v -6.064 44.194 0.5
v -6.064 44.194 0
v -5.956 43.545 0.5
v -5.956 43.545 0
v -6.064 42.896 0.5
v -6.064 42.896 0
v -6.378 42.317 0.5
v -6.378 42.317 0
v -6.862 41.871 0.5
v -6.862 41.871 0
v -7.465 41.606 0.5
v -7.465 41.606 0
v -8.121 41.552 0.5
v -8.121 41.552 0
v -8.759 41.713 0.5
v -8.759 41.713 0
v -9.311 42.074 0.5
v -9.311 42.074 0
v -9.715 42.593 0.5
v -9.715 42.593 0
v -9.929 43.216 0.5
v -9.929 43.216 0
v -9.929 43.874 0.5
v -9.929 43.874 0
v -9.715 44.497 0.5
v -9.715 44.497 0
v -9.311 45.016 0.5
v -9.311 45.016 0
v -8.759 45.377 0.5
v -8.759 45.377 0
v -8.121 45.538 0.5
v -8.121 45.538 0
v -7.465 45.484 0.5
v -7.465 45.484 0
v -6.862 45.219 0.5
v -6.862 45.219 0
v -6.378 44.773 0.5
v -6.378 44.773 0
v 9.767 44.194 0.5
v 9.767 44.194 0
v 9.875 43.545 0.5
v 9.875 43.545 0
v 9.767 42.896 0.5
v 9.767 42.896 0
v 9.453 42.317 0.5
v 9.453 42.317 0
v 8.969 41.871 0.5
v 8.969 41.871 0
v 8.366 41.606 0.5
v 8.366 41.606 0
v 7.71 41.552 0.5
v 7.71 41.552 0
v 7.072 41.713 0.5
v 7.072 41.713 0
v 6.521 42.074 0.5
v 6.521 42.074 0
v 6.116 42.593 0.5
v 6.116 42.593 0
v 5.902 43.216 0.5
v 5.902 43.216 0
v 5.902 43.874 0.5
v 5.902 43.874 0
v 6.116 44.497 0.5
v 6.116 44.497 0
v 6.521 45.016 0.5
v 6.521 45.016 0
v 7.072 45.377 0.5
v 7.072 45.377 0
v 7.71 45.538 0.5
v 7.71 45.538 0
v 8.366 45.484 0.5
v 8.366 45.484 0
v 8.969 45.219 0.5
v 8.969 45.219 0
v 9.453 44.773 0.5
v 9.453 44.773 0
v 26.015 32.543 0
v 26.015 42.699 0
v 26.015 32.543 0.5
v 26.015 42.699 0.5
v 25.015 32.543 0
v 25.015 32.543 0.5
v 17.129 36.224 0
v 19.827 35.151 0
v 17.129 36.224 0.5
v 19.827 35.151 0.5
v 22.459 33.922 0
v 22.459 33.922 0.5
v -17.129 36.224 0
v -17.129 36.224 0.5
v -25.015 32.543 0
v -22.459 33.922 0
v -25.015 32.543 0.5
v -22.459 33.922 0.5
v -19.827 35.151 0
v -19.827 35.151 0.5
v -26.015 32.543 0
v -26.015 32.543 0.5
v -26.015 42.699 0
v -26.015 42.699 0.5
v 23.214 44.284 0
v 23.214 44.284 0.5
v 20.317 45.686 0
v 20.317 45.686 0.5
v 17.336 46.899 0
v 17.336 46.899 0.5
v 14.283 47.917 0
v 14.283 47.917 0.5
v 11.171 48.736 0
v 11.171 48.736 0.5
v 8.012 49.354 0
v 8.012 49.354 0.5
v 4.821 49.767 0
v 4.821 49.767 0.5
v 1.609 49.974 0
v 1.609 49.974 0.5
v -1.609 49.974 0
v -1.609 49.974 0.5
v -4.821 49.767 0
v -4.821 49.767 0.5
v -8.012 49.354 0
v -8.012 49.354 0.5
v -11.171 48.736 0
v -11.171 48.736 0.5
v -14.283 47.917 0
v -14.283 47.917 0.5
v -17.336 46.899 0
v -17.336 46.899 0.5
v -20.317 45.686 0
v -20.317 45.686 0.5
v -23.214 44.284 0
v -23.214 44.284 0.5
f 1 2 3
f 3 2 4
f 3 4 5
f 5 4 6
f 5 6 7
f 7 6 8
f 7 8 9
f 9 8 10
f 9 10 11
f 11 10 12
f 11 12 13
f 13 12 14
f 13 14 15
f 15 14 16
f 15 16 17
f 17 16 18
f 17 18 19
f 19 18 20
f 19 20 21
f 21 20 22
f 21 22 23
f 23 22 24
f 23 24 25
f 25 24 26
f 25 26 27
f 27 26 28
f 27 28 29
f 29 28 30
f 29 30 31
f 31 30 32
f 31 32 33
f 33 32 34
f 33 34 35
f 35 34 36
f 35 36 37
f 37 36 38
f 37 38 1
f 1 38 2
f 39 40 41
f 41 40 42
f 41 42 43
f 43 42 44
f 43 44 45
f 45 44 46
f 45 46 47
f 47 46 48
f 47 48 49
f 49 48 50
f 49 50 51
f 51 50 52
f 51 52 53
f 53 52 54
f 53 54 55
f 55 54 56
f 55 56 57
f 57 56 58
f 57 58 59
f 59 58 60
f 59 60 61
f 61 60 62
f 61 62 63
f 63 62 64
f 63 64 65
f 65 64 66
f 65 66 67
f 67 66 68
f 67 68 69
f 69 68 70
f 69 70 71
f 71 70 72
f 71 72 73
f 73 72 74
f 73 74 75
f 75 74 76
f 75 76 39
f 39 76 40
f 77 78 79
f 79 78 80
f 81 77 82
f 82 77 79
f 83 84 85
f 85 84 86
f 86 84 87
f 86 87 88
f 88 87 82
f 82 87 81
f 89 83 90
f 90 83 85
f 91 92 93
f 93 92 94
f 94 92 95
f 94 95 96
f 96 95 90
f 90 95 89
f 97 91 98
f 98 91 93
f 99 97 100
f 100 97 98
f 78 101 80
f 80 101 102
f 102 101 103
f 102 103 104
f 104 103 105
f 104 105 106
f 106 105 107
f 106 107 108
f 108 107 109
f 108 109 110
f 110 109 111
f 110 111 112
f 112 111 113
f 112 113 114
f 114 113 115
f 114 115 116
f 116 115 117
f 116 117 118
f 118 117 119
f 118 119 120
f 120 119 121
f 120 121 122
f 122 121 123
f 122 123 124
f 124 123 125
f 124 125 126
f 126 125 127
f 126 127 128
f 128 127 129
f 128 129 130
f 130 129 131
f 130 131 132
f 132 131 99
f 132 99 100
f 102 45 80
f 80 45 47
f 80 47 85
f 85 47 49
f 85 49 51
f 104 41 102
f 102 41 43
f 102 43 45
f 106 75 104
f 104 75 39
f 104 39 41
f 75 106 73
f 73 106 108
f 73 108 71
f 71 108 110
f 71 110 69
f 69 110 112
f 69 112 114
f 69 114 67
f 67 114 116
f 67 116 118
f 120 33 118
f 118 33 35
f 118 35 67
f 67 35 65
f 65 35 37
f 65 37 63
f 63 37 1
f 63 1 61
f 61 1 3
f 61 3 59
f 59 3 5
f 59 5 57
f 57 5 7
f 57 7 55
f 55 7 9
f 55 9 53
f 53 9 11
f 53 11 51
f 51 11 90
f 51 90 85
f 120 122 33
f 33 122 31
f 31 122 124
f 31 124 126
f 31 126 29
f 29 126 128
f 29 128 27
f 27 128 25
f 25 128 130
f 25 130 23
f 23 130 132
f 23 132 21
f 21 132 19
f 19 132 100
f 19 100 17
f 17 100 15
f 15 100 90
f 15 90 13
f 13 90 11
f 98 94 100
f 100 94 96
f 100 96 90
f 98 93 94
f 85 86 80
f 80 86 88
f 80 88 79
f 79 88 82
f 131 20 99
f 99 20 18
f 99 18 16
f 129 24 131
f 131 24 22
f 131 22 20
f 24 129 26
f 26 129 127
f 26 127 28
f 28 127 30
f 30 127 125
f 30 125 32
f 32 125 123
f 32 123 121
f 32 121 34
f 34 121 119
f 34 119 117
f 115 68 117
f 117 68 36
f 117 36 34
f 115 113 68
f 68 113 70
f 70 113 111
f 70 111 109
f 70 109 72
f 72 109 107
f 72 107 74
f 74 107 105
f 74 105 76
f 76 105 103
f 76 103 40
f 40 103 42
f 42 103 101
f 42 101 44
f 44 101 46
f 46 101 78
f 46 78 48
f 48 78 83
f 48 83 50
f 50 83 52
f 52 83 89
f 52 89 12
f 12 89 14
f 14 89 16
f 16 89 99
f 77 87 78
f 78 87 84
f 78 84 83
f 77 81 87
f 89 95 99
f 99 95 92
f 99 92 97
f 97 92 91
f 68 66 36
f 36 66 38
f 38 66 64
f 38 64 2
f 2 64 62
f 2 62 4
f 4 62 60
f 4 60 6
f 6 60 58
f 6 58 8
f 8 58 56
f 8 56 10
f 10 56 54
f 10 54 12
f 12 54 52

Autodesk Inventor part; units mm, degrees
ref_plane "YZ Plane" through (0, 0, 0) normal (1, 0, 0) x (0, 1, 0)
ref_plane "XZ Plane" through (0, 0, 0) normal (0, 1, 0) x (-1, 0, 0)
ref_plane "XY Plane" through (0, 0, 0) normal (0, 0, 1) x (1, 0, 0)
sketch "Sketch1" plane through (0, 0, 0) normal (0, 0, 1) x (1, 0, 0)
  circle A0 centre (-7.9561, 43.545) radius 2
  circle A1 centre (7.8751, 43.545) radius 2
  line L0 (-11.8358, 51) -> (11.6369, 51)
  line L1 (-11.8358, 49.5789) -> (-11.8358, 51)
  arc A2 (-11.8358, 49.5789) -> (-25.0147, 44.2928) centre (0, 1) ccw
  line L2 (-25.0147, 44.2928) -> (-26.0147, 44.2928)
  line L3 (-26.0147, 32.5428) -> (-26.0147, 44.2928)
  line L4 (-25.0147, 32.5428) -> (-26.0147, 32.5428)
  arc A3 (-17.1289, 36.2245) -> (-25.0147, 32.5428) centre (0, -10.75) ccw
  line L5 (17.1289, 36.2245) -> (-17.1289, 36.2245)
  arc A4 (25.0147, 32.5428) -> (17.1289, 36.2245) centre (0, -10.75) ccw
  line L6 (25.0147, 32.5428) -> (26.0147, 32.5428)
  line L7 (26.0147, 32.5428) -> (26.0147, 44.2928)
  line L8 (25.0147, 44.2928) -> (26.0147, 44.2928)
  arc A5 (25.0147, 44.2928) -> (11.6369, 49.627) centre (0, 1) ccw
  line L9 (11.6369, 49.627) -> (11.6369, 51)
  circle A6 centre (7.8751, 43.545) radius 2
  circle A7 centre (-7.9561, 43.545) radius 2
  arc A8 (26.0147, 42.6994) -> (-26.0147, 42.6994) centre (0, 0) ccw
  line L10 (-26.0147, 42.6994) -> (-26.0147, 32.5428)
  line L11 (-26.0147, 32.5428) -> (-25.0147, 32.5428)
  arc A9 (-17.1289, 36.2245) -> (-25.0147, 32.5428) centre (0, -10.75) ccw
  line L12 (-17.1289, 36.2245) -> (17.1289, 36.2245)
  arc A10 (25.0147, 32.5428) -> (17.1289, 36.2245) centre (0, -10.75) ccw
  line L13 (26.0147, 32.5428) -> (25.0147, 32.5428)
  line L14 (26.0147, 32.5428) -> (26.0147, 42.6994)
  point P0 (-26.0147, 42.6994)
  point P1 (-25.0147, 32.5428)
extrude "Extrusion1" add sketch "Sketch1" along normal blind 0.5 contours A8 L7 L6 A4 L5 A3 L4 L3
properties part number "warda"
